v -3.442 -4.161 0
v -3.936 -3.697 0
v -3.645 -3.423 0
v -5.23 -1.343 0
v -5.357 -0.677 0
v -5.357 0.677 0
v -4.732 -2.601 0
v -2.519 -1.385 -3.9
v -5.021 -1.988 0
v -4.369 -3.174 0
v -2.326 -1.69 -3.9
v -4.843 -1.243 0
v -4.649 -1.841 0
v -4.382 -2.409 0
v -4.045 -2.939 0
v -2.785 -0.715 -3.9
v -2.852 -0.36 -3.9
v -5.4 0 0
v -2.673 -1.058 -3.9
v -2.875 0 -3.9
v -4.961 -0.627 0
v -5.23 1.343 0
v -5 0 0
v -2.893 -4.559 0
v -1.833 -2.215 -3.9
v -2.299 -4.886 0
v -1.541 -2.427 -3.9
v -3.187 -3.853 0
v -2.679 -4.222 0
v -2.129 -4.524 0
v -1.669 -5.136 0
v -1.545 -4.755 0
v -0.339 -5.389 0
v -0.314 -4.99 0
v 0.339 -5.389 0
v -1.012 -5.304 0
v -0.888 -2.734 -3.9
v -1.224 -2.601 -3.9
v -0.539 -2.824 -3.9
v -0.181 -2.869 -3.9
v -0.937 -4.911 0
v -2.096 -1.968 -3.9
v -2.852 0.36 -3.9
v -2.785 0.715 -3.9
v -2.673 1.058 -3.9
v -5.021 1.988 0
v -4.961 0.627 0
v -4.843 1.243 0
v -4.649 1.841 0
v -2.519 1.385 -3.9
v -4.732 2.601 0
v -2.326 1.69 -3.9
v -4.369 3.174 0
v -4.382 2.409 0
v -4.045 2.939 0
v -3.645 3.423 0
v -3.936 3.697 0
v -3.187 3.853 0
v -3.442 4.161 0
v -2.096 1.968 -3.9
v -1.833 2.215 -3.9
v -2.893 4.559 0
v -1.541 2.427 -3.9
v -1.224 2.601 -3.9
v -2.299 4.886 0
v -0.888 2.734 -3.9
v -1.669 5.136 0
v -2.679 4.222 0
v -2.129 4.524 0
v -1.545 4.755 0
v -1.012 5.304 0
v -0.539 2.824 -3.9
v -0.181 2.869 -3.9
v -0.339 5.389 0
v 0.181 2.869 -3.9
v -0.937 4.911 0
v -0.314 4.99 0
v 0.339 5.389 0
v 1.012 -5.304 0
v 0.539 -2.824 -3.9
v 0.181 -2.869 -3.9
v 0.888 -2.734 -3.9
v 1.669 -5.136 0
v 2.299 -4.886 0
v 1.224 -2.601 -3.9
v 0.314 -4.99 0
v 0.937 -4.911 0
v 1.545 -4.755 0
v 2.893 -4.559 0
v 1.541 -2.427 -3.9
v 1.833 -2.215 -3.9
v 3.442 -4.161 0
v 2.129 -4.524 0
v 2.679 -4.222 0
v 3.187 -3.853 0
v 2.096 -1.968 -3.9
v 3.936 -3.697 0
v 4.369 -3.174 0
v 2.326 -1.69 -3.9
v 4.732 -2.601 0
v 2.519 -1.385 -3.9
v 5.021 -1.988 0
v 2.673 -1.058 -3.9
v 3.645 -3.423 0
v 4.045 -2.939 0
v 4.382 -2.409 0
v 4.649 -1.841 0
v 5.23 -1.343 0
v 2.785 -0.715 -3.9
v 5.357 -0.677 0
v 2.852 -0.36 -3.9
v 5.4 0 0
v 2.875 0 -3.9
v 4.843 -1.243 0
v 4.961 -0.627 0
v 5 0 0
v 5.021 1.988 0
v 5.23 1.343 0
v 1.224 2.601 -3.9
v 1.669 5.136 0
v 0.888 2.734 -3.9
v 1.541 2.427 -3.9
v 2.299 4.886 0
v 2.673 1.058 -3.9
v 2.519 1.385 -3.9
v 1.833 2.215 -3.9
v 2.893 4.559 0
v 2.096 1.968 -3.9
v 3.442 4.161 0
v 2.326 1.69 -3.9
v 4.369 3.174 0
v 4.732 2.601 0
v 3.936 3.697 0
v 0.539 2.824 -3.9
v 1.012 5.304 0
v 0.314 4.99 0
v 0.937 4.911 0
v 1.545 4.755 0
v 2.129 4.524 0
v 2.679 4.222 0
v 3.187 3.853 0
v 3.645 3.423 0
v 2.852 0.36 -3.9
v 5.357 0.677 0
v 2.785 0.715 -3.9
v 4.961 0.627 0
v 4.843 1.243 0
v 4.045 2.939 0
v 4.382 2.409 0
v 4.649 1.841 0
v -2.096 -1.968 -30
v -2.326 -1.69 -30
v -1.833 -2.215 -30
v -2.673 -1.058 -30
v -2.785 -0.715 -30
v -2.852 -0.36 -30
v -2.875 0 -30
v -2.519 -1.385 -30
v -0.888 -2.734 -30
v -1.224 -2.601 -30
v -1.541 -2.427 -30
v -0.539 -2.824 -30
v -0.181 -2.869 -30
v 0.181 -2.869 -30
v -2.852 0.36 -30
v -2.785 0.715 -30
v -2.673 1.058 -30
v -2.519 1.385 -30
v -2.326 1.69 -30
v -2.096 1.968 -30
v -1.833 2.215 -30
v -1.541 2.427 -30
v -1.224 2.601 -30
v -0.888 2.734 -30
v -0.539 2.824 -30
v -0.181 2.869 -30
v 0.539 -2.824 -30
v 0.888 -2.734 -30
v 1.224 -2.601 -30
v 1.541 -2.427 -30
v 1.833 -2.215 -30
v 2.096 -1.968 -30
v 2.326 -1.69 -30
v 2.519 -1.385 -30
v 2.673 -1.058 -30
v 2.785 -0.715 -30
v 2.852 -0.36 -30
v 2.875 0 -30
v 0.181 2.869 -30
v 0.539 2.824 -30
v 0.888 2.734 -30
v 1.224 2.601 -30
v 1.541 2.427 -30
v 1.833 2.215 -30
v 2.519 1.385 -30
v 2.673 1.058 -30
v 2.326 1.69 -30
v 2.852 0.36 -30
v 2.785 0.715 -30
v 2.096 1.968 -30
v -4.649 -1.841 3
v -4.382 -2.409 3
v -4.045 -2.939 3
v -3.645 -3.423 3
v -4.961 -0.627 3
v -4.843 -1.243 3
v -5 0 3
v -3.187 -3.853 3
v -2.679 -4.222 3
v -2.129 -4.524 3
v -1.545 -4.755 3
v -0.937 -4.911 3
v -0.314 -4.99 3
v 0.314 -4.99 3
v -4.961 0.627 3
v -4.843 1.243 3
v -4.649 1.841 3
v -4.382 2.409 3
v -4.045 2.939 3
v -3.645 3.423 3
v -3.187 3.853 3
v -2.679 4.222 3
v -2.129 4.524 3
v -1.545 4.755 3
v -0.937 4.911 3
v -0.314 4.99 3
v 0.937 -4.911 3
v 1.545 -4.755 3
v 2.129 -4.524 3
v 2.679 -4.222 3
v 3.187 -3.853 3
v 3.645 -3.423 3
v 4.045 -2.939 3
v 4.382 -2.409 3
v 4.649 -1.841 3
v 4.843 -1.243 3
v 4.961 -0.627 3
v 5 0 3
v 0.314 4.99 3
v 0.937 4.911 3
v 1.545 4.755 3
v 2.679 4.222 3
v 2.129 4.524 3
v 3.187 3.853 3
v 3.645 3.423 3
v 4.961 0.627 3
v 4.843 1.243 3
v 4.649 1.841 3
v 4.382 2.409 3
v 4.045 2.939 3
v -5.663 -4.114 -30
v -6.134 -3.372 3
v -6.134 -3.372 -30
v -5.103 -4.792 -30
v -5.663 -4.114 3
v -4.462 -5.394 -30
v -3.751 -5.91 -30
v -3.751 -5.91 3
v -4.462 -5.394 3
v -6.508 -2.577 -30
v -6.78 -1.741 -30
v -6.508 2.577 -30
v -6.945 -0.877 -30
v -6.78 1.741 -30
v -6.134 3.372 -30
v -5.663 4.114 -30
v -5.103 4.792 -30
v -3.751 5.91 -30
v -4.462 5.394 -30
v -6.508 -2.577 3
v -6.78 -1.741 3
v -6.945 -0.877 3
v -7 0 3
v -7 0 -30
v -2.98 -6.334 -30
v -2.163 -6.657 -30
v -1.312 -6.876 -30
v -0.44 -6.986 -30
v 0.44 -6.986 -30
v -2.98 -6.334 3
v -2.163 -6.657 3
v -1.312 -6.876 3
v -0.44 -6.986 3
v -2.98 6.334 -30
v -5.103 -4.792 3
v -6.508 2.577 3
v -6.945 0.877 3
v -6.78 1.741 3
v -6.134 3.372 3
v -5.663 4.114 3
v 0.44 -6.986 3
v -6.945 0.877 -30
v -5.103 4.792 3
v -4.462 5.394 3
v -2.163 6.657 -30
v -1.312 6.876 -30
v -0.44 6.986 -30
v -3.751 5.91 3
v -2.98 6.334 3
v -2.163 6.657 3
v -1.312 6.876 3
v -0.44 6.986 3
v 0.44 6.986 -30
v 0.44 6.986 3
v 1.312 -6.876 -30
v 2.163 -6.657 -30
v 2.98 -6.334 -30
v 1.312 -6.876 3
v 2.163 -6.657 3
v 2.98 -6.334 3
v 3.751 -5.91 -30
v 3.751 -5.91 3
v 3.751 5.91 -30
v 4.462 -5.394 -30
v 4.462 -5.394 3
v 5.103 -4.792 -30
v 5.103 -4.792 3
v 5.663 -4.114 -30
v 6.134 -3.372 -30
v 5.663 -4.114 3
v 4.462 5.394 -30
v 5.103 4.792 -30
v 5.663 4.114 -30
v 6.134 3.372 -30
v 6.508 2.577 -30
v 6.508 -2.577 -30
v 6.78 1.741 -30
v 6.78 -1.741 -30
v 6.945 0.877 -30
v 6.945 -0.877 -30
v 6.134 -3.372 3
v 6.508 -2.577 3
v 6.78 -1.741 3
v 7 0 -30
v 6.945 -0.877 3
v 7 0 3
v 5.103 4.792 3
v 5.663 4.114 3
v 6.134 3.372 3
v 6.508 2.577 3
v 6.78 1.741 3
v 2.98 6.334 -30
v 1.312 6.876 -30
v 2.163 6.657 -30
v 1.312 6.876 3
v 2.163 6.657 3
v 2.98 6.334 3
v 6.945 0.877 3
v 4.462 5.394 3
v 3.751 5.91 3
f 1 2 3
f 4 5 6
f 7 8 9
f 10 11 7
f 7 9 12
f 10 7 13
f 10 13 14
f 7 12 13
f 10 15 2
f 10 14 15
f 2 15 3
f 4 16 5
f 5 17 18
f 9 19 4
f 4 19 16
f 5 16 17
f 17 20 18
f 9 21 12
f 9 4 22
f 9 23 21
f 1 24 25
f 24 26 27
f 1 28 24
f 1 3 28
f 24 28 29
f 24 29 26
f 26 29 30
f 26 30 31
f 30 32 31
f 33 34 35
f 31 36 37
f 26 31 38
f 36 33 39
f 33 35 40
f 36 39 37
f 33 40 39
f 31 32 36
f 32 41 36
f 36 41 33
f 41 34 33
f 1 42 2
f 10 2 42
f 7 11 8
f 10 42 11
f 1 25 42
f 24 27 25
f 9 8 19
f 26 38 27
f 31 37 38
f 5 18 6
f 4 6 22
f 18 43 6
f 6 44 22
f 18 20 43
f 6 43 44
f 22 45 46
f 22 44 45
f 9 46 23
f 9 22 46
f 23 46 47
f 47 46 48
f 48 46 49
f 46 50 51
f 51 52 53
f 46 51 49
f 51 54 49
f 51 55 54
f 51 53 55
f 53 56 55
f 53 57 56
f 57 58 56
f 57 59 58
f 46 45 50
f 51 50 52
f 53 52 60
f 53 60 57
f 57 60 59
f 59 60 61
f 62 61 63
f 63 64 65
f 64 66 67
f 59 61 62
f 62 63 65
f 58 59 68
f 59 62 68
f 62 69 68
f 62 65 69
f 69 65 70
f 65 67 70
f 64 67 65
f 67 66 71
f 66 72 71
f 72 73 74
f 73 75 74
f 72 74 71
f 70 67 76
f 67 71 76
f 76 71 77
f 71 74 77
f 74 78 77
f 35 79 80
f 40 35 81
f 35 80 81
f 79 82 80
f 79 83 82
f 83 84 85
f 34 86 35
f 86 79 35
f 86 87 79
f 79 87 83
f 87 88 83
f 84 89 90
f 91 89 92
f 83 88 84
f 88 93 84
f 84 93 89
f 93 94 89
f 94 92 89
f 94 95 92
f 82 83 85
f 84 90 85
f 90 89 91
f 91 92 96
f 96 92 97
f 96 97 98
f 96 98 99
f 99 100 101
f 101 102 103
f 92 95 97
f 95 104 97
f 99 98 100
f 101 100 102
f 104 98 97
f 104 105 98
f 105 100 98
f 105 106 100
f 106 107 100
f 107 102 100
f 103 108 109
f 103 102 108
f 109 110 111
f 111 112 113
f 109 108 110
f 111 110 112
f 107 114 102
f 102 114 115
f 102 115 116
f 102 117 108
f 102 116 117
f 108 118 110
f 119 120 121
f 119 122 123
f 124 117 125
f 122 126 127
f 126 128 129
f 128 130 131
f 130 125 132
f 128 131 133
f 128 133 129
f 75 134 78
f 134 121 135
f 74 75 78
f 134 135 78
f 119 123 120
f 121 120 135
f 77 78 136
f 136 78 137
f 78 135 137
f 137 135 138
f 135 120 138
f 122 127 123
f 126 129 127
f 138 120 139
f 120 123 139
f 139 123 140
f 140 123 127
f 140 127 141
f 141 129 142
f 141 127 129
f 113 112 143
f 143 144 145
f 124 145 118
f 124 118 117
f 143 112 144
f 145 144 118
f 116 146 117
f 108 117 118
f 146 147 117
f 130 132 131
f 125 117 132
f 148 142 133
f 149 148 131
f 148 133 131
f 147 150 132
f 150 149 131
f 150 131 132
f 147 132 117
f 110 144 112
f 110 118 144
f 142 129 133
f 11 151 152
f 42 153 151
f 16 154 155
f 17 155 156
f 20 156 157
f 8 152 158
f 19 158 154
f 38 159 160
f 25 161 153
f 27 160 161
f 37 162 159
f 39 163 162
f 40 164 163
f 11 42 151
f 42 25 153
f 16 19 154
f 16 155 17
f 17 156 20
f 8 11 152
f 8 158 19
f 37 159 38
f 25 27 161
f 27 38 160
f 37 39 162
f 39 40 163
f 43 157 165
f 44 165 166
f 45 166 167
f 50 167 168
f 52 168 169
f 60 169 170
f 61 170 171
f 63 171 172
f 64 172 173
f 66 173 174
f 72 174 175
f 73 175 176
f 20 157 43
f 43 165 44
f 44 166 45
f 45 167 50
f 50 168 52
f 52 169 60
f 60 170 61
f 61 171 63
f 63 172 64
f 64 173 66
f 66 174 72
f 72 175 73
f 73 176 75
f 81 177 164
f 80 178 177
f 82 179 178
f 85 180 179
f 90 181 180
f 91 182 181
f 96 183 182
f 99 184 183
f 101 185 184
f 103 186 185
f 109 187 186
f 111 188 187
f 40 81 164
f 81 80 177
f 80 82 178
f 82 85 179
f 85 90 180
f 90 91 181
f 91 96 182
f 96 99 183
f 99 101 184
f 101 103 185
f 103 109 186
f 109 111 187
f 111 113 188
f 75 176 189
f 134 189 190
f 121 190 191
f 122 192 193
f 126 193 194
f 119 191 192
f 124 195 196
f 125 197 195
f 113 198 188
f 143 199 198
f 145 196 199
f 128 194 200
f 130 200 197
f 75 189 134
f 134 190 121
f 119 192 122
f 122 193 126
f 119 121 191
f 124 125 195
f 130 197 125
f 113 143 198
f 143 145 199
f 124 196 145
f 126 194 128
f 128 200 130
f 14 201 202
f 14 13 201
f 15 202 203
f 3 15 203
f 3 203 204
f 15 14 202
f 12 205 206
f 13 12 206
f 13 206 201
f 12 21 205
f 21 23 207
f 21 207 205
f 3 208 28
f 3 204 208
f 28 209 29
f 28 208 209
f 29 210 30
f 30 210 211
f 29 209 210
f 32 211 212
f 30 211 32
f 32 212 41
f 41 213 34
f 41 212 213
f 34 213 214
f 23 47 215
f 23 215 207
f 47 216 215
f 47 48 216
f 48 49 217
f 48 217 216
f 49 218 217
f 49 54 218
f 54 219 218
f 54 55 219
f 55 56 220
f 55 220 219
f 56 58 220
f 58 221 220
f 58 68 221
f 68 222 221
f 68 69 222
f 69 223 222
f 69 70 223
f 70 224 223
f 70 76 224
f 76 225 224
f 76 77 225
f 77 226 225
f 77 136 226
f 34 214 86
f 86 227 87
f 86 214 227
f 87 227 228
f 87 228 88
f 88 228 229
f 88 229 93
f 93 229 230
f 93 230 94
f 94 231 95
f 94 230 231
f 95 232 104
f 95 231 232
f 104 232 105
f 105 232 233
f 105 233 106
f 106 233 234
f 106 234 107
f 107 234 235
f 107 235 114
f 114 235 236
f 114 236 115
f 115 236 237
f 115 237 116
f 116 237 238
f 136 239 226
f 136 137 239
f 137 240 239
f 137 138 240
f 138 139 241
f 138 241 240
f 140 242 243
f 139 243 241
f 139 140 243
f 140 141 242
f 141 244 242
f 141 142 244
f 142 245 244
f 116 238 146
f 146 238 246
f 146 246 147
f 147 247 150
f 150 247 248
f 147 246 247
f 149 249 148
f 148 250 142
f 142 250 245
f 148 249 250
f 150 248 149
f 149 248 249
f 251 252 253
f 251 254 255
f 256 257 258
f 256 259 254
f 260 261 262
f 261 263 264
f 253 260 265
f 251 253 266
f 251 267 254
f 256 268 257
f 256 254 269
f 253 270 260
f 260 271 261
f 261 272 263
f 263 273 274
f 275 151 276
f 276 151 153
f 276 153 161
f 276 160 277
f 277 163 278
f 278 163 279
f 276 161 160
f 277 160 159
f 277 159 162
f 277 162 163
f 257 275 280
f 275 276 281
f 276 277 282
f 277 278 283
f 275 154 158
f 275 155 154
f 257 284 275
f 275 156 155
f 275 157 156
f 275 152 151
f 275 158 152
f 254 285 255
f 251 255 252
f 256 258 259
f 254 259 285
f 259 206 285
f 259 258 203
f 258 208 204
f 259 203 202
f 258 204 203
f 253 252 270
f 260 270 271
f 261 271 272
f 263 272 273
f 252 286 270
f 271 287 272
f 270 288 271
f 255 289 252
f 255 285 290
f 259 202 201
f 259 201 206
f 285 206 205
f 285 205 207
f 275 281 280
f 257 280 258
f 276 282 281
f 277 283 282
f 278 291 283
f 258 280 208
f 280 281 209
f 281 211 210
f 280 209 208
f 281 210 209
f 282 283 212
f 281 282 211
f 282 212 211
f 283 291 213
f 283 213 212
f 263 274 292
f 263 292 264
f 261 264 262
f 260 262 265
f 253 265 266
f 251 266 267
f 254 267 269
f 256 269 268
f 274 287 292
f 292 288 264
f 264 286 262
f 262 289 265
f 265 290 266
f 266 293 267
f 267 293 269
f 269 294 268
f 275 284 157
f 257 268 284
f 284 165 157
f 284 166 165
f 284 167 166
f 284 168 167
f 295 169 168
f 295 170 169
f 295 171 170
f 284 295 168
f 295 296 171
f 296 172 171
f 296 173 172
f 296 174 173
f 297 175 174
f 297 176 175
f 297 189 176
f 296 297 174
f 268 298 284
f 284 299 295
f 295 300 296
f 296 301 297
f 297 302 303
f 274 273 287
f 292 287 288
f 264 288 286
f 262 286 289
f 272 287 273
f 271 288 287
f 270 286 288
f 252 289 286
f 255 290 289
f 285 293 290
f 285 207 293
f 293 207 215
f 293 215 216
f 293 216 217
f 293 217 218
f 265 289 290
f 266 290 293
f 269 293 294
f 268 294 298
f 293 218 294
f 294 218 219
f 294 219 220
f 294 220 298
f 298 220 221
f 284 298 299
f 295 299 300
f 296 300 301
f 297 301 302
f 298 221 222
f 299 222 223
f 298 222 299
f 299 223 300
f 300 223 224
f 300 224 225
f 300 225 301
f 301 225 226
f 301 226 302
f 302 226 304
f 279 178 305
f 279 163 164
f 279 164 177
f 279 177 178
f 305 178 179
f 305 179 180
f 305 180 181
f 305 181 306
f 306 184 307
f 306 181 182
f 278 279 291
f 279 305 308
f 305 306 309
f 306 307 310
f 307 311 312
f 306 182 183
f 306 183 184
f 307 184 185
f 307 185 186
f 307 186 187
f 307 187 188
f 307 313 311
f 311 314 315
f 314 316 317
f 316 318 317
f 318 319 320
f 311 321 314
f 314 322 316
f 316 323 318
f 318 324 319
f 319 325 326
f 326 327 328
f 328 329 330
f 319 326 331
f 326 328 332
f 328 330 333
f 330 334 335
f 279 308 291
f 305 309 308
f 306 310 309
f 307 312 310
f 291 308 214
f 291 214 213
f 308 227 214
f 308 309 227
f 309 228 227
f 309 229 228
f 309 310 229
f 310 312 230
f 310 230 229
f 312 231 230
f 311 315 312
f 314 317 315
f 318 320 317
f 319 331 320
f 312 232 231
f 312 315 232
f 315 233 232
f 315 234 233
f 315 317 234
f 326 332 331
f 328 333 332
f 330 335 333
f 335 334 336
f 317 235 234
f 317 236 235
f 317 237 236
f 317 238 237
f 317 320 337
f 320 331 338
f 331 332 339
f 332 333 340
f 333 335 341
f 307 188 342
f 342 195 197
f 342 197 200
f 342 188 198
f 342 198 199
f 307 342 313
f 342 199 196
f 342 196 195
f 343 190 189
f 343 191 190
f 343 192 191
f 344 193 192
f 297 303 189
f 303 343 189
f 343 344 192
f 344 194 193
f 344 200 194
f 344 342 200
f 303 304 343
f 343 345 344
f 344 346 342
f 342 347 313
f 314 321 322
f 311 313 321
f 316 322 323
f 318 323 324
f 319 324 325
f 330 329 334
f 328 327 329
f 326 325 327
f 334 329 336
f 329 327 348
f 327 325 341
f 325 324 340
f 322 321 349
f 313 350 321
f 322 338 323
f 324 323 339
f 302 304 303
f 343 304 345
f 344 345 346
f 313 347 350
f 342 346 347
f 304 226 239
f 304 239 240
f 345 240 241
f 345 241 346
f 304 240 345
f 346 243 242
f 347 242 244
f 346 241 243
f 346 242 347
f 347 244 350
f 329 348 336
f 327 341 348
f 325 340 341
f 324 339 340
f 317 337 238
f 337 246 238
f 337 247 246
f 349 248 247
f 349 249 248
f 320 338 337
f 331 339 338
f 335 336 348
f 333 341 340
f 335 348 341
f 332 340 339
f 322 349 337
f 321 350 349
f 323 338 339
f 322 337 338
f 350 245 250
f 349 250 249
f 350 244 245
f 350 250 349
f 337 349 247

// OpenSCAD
$fn = 50;

difference() {
	union() {
		translate(v = [0, 0, -30.0]) {
			cylinder(h = 33, r = 7.0);
		}
	}
	union() {
		translate(v = [0, 0, 0]) {
			rotate(a = [0, 0, 0]) {
				difference() {
					union() {
						translate(v = [0, 0, -33.0]) {
							cylinder(h = 33, r = 2.6);
						}
						translate(v = [0, 0, -3.9]) {
							cylinder(h = 3.9, r1 = 2.875, r2 = 5.4);
						}
						translate(v = [0, 0, -33.0]) {
							cylinder(h = 33, r = 2.875);
						}
						translate(v = [0, 0, -33.0]) {
							cylinder(h = 33, r = 2.6);
						}
					}
					union();
				}
			}
		}
		#cylinder(h = 3, r = 5.0);
	}
}
